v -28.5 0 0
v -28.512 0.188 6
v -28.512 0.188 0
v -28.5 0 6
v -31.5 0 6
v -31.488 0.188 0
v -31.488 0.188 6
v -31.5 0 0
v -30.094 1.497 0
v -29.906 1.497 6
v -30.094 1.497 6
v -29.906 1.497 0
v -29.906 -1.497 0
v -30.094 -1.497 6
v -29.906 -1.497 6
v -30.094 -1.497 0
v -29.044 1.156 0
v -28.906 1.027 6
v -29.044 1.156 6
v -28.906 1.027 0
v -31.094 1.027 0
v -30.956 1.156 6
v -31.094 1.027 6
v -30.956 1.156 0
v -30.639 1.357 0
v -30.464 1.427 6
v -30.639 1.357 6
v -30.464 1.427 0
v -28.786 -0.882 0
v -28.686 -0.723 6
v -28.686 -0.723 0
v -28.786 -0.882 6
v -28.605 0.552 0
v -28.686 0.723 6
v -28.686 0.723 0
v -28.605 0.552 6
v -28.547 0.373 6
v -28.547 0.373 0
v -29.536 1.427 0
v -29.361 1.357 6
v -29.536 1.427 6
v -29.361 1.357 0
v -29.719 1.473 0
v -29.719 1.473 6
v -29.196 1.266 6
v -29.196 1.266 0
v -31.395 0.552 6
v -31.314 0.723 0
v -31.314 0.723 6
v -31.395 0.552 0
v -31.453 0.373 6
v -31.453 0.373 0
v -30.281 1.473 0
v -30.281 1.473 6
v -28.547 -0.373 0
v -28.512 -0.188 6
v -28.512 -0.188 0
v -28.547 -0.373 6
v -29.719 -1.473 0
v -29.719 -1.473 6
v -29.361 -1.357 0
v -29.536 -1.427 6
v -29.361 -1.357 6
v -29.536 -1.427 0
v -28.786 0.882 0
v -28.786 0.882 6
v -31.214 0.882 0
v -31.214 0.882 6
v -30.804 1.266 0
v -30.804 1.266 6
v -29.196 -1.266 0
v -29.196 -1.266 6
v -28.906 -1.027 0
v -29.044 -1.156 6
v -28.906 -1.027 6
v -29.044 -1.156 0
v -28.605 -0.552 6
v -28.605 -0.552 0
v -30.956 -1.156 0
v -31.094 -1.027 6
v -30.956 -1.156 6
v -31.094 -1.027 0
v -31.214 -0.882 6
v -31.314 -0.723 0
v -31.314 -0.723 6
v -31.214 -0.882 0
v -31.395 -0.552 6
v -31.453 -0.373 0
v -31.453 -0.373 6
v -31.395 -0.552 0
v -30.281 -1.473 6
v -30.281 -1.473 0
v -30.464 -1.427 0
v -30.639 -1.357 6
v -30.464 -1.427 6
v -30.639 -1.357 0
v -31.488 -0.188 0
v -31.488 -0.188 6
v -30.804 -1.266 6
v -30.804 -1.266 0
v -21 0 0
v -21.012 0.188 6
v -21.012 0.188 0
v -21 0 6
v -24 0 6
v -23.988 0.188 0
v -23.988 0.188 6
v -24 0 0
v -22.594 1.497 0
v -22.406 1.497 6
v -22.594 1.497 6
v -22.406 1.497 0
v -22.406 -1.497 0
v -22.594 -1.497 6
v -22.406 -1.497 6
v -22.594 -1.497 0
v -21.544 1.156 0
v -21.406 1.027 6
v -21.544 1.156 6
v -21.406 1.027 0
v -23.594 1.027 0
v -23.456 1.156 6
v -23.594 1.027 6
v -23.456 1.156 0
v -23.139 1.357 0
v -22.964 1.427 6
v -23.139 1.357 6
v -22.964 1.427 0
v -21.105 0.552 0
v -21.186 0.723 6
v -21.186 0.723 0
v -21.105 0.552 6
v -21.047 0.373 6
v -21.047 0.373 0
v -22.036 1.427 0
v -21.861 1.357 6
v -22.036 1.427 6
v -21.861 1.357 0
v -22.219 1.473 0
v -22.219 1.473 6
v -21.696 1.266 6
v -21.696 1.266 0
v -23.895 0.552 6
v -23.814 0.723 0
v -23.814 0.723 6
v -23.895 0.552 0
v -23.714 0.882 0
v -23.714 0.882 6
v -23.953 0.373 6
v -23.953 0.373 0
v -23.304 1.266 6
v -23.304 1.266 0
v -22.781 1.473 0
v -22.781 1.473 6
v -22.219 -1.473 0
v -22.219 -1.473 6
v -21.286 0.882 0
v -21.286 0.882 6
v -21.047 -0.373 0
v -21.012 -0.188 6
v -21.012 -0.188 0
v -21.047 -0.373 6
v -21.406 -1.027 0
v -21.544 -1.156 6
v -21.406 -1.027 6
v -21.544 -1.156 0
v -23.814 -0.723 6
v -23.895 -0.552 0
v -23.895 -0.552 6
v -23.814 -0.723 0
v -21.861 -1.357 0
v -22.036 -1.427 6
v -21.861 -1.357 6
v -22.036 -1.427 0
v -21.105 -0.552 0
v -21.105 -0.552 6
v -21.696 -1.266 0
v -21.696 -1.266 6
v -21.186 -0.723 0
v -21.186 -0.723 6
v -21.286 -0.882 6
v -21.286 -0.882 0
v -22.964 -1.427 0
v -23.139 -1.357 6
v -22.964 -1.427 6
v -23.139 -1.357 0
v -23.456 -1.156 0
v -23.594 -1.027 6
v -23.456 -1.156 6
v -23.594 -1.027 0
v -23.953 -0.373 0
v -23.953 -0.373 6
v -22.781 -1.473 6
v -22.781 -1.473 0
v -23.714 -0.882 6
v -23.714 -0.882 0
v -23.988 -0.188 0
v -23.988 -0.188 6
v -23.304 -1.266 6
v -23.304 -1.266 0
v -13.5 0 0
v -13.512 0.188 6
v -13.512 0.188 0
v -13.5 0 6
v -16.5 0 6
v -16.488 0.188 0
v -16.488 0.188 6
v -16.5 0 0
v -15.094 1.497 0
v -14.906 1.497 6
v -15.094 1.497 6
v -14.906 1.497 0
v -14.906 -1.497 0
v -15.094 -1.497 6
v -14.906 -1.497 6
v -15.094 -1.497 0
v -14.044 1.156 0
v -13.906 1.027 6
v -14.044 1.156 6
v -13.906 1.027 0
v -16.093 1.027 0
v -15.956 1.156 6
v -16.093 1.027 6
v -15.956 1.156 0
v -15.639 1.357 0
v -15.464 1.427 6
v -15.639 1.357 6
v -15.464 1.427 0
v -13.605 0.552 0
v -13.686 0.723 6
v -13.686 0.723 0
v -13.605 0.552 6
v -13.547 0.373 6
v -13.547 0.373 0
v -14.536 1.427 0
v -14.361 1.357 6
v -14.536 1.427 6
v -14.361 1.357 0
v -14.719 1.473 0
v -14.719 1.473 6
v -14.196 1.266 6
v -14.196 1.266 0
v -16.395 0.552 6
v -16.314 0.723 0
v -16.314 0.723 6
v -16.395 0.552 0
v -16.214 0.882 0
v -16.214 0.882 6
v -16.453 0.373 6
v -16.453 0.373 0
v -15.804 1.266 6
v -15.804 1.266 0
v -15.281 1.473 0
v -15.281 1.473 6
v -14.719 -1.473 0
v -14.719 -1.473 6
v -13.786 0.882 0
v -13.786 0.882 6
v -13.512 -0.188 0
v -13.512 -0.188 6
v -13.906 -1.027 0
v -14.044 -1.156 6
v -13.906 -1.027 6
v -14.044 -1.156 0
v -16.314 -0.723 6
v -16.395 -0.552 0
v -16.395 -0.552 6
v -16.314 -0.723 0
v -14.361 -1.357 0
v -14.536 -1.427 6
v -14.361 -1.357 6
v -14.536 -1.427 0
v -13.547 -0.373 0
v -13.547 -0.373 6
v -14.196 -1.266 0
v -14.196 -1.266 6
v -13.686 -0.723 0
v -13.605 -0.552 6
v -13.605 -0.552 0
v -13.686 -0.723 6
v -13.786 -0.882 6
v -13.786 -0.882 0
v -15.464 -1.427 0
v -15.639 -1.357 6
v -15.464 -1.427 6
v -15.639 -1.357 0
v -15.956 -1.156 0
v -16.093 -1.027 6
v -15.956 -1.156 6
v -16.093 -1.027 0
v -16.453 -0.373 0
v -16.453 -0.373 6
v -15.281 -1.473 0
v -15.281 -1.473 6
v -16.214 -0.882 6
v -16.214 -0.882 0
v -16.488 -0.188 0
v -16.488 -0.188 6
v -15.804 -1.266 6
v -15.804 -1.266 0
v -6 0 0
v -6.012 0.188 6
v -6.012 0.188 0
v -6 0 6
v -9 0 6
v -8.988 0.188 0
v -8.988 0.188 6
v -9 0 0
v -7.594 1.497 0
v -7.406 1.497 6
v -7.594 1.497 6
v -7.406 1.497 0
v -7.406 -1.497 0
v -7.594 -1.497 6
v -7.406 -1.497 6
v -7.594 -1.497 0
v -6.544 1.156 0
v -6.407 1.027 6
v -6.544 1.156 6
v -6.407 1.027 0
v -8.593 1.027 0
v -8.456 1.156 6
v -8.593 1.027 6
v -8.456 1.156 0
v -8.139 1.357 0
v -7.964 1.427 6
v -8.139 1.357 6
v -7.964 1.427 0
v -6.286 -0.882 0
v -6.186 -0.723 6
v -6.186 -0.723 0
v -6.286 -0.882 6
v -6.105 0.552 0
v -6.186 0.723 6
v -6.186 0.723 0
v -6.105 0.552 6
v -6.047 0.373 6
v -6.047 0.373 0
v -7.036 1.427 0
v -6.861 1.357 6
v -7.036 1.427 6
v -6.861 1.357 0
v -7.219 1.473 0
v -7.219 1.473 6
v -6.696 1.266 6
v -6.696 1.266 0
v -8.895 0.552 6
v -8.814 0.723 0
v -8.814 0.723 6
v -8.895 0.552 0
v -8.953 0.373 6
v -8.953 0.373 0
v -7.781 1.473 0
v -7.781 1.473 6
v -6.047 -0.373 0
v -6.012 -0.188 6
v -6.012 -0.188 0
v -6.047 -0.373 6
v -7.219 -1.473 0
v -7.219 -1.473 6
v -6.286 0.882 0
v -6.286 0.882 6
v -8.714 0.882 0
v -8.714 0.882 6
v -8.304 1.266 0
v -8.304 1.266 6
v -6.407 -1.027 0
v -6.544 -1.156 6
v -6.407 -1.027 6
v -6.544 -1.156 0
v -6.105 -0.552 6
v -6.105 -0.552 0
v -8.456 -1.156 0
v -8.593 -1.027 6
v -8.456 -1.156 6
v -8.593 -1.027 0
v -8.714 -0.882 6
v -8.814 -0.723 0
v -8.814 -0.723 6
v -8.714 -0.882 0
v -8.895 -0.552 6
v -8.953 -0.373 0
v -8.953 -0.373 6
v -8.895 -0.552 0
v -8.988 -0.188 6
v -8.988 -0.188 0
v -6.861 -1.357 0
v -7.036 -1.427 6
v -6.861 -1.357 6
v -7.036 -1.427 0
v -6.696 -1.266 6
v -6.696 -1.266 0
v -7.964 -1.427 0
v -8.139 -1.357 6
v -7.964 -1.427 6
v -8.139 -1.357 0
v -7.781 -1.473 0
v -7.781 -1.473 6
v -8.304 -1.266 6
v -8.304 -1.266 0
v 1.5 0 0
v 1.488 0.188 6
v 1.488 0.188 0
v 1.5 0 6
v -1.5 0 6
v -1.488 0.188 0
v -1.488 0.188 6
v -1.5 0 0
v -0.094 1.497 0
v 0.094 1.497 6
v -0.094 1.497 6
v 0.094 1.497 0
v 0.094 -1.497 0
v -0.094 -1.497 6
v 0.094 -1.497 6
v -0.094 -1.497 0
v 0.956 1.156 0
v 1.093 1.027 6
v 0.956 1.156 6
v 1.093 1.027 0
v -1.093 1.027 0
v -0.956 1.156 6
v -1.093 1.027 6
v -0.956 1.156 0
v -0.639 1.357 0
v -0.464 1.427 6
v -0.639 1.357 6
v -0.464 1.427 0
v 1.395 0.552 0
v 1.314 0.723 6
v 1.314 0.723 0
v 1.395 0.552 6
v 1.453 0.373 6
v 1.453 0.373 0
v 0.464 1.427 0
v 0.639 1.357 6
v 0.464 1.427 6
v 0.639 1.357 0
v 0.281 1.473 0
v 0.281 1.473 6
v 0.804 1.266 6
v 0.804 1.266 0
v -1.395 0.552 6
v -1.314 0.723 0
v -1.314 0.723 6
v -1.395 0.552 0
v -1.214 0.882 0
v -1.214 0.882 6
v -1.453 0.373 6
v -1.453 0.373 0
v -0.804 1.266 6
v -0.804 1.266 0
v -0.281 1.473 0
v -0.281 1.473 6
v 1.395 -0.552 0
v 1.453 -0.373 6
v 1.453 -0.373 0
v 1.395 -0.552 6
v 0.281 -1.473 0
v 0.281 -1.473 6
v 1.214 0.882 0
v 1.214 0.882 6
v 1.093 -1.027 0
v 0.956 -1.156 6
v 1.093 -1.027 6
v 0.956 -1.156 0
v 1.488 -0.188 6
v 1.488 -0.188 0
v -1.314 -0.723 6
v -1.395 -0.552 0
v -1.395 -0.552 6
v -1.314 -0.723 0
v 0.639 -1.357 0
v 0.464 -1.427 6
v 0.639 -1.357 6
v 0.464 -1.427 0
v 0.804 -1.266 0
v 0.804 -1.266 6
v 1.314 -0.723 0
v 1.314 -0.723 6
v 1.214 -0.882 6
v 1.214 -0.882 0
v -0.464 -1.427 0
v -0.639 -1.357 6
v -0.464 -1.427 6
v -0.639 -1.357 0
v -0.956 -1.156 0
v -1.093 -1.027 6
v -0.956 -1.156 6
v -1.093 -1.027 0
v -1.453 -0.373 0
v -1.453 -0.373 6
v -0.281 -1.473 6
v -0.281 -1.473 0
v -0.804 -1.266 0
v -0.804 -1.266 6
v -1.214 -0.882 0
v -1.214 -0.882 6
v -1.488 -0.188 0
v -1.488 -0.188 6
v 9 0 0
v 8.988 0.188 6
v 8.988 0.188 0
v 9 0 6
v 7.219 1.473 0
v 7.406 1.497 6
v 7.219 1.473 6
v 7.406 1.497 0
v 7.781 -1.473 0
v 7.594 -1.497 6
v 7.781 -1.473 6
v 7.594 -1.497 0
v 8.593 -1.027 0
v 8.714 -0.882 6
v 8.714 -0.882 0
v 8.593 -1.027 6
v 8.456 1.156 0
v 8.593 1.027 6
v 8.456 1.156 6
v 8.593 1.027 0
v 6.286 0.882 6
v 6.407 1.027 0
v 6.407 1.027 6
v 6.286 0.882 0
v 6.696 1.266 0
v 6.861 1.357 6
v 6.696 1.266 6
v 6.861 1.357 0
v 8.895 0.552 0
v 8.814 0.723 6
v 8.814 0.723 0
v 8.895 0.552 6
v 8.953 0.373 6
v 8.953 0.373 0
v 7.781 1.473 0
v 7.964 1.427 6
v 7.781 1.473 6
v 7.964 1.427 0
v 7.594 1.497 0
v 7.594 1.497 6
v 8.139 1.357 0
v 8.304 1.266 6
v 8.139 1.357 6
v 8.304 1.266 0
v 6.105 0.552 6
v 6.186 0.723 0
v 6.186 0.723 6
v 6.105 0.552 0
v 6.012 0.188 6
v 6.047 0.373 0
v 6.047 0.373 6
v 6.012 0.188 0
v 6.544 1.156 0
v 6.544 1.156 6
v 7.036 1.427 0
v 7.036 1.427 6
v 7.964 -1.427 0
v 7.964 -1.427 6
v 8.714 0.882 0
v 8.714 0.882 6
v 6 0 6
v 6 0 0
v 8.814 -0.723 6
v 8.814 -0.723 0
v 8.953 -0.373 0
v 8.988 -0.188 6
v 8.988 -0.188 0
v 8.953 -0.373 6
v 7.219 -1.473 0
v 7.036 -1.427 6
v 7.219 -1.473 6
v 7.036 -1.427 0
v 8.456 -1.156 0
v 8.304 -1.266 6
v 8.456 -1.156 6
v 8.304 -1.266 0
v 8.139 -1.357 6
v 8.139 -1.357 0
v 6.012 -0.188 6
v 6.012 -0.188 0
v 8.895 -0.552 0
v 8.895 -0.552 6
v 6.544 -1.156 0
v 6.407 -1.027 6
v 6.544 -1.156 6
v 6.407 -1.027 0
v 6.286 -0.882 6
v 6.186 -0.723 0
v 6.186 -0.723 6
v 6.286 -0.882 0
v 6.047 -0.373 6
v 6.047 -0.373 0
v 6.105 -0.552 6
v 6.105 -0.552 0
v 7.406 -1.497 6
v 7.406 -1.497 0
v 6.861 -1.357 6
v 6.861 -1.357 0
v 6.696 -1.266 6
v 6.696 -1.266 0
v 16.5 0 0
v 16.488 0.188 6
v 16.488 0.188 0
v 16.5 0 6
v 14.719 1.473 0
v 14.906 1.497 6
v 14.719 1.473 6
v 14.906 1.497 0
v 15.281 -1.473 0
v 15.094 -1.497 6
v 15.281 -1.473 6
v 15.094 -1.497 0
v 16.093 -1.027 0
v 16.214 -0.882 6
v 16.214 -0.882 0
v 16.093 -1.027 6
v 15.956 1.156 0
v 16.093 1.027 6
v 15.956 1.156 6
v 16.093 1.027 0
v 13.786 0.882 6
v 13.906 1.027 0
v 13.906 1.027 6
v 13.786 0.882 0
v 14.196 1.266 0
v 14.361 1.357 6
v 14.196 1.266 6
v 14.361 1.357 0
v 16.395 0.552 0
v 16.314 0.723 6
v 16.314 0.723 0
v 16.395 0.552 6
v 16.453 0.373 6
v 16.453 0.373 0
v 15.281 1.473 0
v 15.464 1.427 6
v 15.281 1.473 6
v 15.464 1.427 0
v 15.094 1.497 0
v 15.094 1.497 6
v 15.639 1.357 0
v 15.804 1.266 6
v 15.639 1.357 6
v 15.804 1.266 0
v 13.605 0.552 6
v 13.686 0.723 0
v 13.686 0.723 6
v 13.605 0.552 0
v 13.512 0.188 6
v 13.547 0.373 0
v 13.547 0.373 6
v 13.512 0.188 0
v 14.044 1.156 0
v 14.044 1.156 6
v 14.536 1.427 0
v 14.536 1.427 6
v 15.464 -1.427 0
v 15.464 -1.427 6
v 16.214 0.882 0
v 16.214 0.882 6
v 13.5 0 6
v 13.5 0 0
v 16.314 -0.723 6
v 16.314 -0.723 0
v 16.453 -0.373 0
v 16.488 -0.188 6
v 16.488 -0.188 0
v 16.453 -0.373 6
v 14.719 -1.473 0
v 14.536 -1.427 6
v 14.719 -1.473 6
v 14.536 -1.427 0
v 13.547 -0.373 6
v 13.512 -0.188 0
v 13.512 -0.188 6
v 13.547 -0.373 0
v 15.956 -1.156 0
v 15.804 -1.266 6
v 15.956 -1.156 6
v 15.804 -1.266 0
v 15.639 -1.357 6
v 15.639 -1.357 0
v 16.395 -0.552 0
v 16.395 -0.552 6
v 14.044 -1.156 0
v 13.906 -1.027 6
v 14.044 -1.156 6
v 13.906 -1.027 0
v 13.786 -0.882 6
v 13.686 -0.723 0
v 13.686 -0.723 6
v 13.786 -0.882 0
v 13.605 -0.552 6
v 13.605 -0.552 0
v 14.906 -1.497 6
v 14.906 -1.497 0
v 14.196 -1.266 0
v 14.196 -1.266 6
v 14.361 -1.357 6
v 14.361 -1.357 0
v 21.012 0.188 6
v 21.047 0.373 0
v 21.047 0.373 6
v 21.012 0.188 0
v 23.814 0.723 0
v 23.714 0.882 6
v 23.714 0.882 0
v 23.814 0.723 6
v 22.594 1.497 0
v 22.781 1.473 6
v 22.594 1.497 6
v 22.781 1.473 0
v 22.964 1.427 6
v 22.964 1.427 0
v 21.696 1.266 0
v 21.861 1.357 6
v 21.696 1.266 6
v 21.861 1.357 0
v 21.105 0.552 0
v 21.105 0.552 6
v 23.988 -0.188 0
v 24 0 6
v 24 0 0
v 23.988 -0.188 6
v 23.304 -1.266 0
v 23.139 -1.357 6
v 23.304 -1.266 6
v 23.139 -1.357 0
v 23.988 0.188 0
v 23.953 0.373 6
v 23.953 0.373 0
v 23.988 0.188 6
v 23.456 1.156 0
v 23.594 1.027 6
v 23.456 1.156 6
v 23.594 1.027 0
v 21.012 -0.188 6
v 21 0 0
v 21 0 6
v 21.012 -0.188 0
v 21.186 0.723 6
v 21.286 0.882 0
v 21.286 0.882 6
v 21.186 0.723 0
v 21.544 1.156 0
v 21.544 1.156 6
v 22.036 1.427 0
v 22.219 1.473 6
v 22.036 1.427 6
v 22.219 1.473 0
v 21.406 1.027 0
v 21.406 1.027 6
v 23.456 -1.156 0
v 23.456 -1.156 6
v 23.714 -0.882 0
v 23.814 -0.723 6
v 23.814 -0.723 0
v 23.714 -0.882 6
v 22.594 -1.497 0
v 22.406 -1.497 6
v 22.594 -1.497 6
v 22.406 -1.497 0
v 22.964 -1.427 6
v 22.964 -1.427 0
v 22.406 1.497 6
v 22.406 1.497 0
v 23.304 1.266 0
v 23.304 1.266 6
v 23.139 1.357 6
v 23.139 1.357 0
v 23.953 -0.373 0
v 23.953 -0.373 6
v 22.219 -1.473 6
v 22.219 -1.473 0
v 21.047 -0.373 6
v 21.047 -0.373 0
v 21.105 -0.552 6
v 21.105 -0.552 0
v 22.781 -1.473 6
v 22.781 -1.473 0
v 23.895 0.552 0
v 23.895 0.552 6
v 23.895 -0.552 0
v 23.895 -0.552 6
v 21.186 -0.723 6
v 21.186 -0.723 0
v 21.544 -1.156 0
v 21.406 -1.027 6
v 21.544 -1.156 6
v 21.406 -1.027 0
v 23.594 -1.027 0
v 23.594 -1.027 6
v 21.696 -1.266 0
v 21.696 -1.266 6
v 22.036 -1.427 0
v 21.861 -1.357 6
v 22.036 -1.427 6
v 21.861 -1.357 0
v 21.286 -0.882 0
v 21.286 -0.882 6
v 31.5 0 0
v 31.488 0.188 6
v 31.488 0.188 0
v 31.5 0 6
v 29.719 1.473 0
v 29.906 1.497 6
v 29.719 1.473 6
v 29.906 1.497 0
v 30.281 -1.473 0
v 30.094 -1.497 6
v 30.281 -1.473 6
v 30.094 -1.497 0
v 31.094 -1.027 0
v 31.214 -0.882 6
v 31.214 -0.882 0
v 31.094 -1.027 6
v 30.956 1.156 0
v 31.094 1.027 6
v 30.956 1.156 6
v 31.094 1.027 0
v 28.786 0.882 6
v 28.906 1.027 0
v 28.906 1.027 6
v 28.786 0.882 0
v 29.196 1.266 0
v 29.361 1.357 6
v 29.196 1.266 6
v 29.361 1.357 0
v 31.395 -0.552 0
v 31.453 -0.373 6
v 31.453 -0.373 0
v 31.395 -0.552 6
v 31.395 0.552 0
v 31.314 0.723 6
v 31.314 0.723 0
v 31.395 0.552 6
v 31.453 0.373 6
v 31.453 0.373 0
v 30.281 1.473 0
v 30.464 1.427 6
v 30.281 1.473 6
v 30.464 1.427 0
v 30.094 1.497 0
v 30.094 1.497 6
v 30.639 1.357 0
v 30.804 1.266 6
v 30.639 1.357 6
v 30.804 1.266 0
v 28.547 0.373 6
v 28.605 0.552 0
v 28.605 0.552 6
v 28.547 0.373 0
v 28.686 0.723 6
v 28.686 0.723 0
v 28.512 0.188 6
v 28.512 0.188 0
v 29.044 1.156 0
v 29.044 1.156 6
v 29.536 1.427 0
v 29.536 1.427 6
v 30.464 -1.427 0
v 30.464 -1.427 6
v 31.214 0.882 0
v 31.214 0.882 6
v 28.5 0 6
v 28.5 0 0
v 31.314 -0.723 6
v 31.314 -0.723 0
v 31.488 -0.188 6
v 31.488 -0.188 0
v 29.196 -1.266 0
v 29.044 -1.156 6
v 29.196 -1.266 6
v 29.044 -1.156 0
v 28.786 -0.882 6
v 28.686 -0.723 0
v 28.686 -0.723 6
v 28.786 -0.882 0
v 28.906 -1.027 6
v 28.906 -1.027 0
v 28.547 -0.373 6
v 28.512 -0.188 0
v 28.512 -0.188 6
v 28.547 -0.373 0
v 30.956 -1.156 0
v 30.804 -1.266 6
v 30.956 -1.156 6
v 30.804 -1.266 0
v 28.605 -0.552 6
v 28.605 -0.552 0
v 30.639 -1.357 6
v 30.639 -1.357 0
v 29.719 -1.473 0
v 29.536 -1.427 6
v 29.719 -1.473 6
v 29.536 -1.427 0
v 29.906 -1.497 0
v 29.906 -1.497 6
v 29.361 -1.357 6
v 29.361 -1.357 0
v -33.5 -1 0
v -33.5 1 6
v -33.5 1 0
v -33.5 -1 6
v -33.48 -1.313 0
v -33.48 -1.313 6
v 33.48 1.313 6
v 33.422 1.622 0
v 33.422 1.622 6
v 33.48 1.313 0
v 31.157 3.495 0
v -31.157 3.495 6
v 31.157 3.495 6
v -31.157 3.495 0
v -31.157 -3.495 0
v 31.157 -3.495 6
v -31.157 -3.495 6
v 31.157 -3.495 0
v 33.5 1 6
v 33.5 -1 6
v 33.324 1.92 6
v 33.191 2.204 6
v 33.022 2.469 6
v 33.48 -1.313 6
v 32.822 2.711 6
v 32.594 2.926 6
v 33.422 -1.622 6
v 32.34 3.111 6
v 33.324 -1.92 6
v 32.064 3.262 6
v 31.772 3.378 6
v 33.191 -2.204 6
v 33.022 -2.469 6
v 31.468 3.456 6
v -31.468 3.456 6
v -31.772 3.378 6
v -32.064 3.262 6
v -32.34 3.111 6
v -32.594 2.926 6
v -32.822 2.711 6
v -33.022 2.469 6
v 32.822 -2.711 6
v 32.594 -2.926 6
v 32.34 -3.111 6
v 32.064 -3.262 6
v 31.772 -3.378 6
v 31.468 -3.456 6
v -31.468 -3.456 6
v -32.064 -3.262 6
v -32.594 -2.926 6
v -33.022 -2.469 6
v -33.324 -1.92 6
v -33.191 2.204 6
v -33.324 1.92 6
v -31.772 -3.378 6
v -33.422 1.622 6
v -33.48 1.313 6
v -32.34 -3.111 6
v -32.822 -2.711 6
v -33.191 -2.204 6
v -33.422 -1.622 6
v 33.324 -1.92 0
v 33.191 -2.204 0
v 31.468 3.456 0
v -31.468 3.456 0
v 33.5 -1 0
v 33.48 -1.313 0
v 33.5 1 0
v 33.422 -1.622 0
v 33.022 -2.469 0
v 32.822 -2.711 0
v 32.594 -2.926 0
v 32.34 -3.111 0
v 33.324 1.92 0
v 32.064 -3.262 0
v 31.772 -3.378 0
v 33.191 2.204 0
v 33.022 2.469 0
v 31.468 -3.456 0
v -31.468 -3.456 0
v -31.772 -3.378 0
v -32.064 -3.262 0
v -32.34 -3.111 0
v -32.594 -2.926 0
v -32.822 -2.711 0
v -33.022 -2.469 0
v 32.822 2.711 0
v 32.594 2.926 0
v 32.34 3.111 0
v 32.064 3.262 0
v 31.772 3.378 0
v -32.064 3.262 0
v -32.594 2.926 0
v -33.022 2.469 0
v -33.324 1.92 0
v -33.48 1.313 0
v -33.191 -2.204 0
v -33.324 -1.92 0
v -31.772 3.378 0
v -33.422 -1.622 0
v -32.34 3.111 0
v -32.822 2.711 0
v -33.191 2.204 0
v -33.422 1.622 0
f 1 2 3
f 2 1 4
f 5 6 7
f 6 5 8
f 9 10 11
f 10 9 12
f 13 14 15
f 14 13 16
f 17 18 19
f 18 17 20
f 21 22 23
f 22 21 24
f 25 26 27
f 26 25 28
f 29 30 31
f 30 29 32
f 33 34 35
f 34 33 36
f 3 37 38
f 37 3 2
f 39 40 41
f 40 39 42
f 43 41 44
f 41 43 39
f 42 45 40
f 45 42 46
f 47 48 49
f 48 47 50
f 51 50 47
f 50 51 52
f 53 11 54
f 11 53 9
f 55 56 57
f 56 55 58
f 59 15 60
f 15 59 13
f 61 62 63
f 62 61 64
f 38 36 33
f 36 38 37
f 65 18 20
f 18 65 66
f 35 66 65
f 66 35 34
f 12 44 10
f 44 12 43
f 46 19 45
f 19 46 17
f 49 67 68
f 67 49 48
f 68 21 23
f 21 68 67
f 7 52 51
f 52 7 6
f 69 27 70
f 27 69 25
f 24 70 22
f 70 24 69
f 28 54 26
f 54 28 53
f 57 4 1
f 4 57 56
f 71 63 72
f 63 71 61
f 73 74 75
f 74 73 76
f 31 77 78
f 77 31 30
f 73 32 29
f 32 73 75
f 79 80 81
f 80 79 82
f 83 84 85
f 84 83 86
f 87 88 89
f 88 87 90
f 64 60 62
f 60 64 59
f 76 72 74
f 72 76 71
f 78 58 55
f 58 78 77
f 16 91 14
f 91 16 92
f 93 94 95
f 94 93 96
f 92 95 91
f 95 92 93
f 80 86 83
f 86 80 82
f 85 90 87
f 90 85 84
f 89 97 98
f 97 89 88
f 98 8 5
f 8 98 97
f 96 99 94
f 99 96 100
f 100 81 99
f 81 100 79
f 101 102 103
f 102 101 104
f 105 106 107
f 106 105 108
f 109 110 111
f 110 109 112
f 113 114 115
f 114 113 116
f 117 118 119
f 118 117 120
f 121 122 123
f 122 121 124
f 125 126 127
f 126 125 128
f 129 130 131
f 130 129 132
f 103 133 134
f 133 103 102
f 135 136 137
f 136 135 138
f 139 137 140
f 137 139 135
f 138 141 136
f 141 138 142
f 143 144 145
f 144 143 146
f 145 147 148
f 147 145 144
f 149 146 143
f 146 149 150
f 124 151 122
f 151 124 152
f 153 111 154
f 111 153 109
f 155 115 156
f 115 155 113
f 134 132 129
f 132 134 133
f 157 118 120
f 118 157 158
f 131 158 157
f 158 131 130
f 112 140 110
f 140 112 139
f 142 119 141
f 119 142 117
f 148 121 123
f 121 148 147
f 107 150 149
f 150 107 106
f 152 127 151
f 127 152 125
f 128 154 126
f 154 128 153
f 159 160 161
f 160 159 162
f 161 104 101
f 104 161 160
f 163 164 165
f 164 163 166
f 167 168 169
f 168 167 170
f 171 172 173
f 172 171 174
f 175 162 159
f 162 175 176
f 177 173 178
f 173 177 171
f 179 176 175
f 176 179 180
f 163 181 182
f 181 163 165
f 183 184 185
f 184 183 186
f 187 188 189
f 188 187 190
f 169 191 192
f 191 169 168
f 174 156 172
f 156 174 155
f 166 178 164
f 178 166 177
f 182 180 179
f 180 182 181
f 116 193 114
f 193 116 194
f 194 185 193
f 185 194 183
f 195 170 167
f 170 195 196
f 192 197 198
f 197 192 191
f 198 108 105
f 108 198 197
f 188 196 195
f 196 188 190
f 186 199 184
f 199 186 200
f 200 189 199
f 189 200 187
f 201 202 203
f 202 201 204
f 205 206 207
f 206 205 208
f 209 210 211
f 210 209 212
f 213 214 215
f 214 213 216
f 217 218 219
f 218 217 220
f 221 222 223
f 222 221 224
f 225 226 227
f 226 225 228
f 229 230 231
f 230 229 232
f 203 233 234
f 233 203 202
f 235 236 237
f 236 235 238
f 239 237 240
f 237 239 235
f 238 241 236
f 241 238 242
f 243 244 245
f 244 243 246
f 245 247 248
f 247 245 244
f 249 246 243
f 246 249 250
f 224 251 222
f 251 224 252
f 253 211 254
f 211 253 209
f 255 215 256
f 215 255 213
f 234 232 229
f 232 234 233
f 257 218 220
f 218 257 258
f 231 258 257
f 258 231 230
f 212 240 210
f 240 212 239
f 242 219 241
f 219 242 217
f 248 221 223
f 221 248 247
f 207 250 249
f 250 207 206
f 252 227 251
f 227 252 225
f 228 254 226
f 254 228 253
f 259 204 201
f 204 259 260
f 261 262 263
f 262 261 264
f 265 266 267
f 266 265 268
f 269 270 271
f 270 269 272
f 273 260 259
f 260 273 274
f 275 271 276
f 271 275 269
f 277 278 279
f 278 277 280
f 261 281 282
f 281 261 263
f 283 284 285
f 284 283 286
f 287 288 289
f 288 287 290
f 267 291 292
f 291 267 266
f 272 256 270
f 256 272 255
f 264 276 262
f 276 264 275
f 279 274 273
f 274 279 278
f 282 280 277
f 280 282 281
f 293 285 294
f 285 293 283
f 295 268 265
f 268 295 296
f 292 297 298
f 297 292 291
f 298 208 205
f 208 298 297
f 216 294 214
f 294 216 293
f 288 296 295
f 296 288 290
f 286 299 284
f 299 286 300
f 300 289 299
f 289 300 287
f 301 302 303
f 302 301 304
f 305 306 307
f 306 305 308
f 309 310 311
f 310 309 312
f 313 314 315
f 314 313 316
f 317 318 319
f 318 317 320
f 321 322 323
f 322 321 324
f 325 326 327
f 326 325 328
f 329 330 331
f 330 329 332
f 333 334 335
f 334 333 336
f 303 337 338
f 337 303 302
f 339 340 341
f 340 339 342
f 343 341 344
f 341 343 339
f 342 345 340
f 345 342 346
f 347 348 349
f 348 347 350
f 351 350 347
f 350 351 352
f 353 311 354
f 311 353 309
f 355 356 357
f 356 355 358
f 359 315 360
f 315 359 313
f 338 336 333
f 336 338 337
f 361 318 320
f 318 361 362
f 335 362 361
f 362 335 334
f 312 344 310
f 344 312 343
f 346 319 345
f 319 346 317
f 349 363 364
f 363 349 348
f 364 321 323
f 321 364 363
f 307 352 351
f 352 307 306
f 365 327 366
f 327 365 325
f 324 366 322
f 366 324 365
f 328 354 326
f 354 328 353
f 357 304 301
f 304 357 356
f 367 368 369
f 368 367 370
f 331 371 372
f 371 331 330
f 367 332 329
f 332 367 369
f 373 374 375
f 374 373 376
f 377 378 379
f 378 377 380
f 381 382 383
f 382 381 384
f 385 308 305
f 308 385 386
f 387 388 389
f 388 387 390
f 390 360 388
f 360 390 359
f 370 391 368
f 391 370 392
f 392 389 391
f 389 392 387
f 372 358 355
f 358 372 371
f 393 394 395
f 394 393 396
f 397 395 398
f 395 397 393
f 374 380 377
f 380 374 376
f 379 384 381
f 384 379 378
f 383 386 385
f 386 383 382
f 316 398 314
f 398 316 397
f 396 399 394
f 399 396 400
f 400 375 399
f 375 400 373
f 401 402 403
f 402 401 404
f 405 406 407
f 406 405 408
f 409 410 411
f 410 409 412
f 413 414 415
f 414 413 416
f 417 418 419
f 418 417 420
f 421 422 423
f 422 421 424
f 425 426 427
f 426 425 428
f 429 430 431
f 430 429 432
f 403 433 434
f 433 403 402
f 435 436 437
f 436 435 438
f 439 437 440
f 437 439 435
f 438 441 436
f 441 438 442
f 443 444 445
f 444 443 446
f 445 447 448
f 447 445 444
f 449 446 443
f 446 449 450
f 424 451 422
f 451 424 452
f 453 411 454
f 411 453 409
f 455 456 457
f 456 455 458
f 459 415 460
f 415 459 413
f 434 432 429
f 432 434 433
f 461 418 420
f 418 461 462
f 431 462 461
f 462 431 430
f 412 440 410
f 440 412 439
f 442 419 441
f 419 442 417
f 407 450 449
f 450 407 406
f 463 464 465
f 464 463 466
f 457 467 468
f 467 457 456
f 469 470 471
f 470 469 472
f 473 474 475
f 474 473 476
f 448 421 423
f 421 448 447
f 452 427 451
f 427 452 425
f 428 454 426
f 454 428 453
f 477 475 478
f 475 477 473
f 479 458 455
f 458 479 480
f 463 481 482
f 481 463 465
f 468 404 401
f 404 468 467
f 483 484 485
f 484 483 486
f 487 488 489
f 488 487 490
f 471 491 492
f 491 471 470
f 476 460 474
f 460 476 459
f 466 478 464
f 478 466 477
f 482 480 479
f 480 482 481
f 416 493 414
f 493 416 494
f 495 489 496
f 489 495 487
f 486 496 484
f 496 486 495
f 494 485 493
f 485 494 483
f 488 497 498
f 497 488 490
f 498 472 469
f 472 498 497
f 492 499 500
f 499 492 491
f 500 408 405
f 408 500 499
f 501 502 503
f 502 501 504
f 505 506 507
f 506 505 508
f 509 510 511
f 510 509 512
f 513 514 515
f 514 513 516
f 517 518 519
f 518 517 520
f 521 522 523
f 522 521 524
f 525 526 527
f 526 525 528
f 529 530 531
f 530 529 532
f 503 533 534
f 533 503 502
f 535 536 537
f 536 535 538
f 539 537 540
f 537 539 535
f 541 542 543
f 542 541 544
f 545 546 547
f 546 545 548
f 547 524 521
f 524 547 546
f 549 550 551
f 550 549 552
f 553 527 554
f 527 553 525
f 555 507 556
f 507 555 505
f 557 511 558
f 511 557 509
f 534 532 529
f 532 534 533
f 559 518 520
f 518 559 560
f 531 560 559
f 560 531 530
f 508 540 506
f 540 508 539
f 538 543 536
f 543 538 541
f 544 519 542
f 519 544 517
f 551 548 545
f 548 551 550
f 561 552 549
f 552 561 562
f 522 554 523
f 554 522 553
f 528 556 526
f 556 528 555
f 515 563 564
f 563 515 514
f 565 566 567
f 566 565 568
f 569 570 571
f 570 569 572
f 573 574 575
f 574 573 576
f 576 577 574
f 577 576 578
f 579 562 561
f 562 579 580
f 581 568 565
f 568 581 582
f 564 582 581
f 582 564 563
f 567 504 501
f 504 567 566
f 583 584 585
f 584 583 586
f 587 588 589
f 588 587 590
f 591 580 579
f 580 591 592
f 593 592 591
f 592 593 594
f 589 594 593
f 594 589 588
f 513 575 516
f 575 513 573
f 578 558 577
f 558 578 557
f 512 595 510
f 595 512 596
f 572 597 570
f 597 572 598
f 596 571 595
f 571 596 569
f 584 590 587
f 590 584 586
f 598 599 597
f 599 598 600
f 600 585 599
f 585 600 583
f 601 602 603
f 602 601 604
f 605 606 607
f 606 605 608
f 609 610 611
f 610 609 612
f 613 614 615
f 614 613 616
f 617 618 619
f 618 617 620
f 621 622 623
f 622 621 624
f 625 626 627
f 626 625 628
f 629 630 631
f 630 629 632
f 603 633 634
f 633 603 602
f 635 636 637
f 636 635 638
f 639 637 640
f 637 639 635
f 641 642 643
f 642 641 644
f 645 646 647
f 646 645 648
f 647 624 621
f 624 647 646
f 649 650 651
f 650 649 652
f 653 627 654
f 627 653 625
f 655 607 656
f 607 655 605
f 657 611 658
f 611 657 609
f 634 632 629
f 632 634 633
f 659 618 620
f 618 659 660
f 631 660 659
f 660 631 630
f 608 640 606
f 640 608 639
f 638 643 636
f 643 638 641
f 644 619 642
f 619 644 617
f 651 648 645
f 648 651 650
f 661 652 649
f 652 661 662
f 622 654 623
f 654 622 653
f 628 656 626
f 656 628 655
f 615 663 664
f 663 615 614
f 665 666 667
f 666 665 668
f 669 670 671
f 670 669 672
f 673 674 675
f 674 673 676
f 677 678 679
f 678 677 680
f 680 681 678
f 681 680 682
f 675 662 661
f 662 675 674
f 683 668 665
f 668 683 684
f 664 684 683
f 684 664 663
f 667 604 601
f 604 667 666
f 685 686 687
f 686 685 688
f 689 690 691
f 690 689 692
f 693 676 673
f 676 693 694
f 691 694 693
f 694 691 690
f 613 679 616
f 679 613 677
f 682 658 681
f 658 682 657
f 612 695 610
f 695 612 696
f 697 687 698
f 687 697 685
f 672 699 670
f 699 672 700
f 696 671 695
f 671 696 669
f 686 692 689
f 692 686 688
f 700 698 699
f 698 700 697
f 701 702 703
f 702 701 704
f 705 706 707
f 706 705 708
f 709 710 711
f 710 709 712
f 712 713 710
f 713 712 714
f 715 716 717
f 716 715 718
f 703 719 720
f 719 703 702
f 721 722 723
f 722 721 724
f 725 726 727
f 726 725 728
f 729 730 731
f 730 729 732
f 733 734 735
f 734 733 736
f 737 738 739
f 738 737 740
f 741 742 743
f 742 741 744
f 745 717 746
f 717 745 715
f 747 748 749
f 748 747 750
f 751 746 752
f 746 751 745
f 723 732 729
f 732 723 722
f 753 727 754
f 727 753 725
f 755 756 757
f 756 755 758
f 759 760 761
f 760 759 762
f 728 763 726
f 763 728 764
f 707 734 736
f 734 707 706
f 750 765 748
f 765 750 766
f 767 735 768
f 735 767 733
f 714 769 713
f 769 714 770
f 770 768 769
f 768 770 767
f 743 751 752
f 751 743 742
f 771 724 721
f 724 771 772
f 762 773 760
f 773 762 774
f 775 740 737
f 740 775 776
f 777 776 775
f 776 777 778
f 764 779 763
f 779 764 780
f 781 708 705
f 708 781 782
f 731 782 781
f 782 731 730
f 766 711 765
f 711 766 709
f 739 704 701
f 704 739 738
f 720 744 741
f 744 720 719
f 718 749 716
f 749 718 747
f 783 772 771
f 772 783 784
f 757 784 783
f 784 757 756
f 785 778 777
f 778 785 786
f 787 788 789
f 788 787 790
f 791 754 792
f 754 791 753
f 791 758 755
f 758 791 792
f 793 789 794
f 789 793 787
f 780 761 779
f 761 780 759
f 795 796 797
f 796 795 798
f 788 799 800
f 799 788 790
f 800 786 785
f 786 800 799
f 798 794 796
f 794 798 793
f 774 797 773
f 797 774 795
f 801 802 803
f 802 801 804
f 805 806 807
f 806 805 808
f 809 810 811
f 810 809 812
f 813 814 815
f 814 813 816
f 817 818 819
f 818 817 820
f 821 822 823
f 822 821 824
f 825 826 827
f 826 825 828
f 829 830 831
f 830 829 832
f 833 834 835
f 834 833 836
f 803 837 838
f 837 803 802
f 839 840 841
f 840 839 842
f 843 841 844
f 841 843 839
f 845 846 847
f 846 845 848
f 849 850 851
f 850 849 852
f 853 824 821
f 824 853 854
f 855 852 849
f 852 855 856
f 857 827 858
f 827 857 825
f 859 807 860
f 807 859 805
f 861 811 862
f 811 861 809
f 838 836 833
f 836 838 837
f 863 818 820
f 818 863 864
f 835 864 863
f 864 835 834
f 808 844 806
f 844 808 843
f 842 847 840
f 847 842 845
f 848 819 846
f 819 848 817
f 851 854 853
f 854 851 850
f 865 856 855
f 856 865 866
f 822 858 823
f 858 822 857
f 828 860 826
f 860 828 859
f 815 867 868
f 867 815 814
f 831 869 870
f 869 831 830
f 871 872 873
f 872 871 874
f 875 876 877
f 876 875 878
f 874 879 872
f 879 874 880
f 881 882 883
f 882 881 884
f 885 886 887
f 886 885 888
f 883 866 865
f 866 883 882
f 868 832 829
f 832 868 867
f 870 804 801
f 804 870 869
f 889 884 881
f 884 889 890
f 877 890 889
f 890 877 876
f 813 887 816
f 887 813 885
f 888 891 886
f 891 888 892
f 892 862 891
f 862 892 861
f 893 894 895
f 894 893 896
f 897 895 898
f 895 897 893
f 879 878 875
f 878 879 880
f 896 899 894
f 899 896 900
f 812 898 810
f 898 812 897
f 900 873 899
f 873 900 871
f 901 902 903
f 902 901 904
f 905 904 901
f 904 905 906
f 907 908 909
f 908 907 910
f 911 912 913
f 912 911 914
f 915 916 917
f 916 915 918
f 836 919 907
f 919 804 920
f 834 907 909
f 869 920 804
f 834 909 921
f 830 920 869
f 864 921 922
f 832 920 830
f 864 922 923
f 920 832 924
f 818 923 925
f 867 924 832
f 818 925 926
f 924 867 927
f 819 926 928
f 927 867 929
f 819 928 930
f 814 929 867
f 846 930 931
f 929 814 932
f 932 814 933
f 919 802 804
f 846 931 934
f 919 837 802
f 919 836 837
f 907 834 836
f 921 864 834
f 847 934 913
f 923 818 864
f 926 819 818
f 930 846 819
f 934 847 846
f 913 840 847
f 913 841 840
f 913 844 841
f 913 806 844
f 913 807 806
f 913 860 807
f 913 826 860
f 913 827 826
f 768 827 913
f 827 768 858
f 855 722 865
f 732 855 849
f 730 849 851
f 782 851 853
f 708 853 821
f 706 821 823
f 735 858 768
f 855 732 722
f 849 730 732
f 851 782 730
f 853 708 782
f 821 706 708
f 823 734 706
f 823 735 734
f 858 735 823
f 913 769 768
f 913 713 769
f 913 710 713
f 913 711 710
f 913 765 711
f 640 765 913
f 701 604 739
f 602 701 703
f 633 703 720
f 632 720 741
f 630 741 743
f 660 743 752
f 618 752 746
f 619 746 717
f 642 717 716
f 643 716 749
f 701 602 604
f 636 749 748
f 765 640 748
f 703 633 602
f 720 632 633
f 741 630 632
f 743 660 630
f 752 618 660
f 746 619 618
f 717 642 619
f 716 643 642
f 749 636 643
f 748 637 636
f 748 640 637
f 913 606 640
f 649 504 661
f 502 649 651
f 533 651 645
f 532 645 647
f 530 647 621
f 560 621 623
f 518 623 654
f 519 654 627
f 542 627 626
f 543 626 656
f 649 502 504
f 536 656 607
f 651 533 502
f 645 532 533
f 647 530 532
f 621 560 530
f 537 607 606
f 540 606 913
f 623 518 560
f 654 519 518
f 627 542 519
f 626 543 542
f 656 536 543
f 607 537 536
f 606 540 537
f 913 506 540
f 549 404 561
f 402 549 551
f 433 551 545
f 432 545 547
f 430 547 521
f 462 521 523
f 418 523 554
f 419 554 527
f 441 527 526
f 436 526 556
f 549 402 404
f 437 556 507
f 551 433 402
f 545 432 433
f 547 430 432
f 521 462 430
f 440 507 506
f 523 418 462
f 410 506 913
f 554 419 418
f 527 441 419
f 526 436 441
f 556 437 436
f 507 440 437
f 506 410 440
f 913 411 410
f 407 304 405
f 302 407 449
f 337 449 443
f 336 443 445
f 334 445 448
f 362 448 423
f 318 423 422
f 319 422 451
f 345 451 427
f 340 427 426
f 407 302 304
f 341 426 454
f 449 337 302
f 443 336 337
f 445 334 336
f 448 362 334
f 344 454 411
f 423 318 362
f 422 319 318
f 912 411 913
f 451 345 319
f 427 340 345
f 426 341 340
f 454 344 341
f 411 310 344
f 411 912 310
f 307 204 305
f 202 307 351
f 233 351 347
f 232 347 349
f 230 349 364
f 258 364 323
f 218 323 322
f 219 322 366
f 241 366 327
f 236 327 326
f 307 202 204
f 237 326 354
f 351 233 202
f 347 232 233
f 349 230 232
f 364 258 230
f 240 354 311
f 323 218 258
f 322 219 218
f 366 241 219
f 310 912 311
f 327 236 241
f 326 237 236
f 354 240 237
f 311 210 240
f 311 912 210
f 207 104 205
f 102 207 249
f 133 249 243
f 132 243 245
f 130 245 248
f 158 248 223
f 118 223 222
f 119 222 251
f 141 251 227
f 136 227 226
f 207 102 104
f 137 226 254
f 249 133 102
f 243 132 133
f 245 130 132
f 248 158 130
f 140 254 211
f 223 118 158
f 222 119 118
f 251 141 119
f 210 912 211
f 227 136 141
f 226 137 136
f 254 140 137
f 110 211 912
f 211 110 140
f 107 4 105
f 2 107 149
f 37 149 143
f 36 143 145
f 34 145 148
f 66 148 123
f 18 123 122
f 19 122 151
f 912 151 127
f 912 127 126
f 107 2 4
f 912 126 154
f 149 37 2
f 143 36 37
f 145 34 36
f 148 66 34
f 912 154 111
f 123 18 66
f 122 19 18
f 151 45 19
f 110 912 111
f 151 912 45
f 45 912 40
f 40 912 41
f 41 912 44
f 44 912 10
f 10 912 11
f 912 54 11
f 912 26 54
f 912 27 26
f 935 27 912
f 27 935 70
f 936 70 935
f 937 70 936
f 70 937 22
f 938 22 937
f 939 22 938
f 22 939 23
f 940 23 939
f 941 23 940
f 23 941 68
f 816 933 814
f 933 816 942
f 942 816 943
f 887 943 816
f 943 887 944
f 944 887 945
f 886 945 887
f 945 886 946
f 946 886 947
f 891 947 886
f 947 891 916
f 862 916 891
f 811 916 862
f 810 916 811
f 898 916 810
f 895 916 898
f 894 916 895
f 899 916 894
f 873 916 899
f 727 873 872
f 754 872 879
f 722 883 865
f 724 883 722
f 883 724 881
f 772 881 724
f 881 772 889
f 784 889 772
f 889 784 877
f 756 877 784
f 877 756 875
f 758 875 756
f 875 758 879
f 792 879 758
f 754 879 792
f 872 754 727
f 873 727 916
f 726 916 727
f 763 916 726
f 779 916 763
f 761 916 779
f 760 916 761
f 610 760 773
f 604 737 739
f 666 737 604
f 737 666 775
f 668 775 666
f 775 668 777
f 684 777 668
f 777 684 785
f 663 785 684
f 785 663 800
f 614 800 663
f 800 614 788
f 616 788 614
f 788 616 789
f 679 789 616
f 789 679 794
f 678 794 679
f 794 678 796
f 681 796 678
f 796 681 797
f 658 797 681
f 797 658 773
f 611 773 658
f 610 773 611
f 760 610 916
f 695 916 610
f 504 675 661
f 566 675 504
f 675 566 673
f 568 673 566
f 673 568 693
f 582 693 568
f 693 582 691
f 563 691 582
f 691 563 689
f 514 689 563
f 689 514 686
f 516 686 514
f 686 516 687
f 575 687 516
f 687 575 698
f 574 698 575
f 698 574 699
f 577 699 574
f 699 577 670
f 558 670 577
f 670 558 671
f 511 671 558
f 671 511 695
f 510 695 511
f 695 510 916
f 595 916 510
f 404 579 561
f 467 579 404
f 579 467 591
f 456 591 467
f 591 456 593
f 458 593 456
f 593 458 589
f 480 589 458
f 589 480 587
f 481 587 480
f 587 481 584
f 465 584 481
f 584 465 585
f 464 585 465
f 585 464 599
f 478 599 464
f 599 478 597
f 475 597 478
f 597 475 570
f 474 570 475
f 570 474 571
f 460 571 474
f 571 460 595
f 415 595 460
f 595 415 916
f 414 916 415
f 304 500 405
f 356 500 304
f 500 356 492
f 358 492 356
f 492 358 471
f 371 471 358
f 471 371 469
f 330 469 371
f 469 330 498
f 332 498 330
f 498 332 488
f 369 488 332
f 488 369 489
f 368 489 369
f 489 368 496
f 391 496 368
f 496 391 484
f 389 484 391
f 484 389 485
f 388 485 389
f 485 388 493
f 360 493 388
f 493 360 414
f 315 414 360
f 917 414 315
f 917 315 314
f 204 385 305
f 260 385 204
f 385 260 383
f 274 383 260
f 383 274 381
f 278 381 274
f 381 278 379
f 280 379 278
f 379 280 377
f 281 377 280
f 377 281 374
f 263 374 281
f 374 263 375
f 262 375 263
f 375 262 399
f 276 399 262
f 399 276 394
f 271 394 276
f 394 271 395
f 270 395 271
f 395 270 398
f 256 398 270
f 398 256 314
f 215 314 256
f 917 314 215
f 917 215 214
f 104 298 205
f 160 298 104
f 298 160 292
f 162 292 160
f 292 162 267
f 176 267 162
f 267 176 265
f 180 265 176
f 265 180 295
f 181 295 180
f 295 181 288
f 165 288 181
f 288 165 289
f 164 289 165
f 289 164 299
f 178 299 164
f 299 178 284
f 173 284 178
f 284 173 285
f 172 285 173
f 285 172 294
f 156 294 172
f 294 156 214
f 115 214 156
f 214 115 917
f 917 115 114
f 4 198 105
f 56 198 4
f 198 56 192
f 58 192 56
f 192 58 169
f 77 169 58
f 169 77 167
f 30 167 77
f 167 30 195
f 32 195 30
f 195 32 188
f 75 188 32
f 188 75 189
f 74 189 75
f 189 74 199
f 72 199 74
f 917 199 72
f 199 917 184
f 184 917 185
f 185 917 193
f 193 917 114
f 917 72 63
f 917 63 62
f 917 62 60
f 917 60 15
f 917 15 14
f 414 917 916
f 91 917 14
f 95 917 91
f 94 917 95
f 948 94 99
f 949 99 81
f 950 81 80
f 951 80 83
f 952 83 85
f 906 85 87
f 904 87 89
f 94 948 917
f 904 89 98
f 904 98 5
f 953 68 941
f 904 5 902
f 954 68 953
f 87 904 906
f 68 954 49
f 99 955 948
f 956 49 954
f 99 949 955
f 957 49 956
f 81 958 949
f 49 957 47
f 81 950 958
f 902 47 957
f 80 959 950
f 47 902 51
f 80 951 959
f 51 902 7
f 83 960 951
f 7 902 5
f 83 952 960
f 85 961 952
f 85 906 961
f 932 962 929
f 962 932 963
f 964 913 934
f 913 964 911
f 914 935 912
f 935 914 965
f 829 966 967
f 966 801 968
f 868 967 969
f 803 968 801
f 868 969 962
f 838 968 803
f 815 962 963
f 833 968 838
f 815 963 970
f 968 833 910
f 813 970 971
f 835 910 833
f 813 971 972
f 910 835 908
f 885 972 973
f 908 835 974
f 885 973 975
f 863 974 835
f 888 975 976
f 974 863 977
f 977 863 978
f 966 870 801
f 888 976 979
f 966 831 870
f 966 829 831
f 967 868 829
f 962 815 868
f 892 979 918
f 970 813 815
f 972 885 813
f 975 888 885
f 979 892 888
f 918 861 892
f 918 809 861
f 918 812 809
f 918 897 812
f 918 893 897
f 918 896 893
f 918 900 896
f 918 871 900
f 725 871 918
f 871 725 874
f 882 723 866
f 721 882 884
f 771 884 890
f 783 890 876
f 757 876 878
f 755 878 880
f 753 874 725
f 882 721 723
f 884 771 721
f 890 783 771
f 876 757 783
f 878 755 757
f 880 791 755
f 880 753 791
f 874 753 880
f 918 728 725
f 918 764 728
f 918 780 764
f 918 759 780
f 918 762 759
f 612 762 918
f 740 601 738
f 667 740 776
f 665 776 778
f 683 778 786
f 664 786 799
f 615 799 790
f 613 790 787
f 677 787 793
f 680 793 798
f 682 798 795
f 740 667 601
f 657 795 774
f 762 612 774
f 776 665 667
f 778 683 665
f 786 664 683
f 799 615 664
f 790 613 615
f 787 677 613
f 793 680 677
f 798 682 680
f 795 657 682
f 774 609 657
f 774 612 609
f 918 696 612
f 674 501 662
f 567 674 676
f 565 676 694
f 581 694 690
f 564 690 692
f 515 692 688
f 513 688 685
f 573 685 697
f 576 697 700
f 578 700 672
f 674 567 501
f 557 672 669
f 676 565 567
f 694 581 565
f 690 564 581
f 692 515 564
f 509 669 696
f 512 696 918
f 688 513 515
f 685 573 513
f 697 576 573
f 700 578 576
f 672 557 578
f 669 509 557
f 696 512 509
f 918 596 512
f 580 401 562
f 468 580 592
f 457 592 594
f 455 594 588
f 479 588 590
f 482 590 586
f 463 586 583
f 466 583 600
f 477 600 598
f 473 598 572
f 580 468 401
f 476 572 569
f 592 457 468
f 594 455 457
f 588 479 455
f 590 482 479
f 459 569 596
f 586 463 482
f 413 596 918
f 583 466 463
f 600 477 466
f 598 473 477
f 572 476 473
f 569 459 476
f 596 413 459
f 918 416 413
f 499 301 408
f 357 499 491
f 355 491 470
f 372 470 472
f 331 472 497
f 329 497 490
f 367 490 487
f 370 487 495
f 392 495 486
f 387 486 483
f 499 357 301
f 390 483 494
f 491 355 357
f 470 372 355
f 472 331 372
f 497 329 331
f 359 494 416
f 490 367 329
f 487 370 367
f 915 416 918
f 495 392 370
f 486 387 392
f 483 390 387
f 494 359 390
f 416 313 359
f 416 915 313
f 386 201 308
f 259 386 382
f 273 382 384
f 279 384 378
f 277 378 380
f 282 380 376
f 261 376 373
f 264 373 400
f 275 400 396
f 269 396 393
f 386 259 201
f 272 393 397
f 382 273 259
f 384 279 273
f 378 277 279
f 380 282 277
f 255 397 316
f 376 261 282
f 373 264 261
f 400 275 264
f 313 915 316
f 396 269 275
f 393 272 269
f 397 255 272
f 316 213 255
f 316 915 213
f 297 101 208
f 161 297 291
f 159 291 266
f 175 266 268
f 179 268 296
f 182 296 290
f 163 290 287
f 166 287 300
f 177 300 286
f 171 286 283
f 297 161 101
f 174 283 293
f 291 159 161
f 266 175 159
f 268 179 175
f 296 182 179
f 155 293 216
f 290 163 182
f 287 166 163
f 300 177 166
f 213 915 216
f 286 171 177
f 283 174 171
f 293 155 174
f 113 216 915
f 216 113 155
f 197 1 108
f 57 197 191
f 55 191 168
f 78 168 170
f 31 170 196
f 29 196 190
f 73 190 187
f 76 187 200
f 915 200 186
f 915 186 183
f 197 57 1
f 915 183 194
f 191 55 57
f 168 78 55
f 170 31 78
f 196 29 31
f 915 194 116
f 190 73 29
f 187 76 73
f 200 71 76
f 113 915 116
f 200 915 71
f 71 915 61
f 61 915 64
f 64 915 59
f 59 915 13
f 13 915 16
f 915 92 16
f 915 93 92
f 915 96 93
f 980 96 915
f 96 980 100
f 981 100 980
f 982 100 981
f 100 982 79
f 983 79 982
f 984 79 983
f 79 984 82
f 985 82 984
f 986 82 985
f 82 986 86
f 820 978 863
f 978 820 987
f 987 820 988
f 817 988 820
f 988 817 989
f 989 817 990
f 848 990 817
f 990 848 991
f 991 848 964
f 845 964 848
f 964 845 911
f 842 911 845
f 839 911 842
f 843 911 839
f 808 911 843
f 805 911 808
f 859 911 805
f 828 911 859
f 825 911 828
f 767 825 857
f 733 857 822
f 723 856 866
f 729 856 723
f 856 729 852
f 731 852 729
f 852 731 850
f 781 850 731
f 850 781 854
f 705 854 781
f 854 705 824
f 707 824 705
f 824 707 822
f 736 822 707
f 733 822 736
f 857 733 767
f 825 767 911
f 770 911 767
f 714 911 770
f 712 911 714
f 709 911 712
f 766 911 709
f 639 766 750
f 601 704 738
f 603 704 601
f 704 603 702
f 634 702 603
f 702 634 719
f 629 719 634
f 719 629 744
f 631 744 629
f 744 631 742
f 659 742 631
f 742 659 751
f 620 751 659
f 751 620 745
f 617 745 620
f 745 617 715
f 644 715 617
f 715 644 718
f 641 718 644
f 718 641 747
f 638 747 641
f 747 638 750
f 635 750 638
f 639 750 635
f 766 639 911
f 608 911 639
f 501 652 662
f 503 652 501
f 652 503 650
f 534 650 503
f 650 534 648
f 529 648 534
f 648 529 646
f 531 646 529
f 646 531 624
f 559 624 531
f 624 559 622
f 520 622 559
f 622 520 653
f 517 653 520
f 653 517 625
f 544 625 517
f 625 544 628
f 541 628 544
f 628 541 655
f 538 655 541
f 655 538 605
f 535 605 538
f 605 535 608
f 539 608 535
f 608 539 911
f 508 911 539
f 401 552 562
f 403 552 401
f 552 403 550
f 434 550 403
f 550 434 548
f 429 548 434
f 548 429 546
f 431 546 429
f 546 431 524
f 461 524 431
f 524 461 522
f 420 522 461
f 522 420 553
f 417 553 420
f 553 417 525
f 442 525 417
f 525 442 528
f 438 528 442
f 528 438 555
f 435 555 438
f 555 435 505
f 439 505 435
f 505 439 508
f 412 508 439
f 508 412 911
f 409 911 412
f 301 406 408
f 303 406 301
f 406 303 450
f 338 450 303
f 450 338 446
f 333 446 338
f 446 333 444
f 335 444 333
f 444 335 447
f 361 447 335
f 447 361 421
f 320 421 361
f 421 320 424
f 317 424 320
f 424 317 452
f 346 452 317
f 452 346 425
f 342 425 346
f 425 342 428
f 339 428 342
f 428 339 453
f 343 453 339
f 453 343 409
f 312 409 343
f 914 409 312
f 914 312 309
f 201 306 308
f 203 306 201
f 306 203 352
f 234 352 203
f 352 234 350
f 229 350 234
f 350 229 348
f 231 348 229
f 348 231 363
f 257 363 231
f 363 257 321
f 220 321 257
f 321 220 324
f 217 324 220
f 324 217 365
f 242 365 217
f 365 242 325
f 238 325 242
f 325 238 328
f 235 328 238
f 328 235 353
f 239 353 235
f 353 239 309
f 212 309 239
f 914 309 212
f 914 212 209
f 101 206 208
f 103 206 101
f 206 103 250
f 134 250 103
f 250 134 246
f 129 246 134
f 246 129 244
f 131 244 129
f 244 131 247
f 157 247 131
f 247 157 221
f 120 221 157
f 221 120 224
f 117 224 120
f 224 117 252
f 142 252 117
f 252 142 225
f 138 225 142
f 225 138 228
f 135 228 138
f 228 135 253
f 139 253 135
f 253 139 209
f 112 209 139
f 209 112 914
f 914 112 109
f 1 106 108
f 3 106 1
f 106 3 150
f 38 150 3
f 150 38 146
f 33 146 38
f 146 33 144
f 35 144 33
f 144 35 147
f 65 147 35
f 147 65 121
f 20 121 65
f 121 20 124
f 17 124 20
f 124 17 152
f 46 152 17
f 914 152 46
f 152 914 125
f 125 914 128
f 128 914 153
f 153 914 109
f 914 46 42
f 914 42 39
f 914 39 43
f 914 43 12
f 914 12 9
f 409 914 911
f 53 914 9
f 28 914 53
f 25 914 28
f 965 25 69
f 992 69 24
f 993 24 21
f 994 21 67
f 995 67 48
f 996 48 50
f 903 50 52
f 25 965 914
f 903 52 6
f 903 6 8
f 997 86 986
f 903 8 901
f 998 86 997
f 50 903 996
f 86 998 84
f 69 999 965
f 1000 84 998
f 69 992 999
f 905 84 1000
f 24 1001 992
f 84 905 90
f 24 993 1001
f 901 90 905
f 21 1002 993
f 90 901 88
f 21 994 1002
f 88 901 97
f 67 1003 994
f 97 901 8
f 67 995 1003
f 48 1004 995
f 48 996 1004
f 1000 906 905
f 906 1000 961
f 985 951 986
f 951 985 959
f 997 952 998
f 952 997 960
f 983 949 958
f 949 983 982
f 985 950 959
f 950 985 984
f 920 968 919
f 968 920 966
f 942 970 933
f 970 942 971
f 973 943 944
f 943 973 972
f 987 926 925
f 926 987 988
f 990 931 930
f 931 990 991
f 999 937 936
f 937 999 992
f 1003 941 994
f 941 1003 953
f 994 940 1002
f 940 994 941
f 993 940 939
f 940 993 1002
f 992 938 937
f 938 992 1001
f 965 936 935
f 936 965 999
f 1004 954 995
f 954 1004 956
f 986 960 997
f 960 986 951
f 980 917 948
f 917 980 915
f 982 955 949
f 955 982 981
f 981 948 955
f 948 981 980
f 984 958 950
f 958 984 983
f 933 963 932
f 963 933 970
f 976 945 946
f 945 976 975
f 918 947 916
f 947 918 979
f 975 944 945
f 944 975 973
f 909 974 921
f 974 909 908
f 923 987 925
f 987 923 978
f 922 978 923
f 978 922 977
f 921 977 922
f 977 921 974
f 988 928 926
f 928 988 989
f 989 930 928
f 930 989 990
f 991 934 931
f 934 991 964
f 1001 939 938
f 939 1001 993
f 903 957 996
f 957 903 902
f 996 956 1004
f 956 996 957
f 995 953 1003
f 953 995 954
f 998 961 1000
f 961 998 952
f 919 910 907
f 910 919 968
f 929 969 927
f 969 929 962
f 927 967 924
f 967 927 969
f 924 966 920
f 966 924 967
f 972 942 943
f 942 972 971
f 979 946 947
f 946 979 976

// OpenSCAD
$fn = 50;


difference() {
	union() {
		translate(v = [0, 0, 0]) {
			rotate(a = [0, 0, 0]) {
				hull() {
					translate(v = [-31.0000000000, 1.0000000000, 0]) {
						rotate(a = [0, 0, 0]) {
							translate(v = [0, 0, 0]) {
								rotate(a = [0, 0, 0]) {
									cylinder(h = 6, r = 2.5000000000);
								}
							}
						}
					}
					translate(v = [31.0000000000, 1.0000000000, 0]) {
						rotate(a = [0, 0, 0]) {
							translate(v = [0, 0, 0]) {
								rotate(a = [0, 0, 0]) {
									cylinder(h = 6, r = 2.5000000000);
								}
							}
						}
					}
					translate(v = [-31.0000000000, -1.0000000000, 0]) {
						rotate(a = [0, 0, 0]) {
							translate(v = [0, 0, 0]) {
								rotate(a = [0, 0, 0]) {
									cylinder(h = 6, r = 2.5000000000);
								}
							}
						}
					}
					translate(v = [31.0000000000, -1.0000000000, 0]) {
						rotate(a = [0, 0, 0]) {
							translate(v = [0, 0, 0]) {
								rotate(a = [0, 0, 0]) {
									cylinder(h = 6, r = 2.5000000000);
								}
							}
						}
					}
				}
			}
		}
	}
	union() {
		translate(v = [-30.0000000000, 0.0000000000, 0]) {
			rotate(a = [0, 0, 0]) {
				translate(v = [0, 0, -50]) {
					rotate(a = [0, 0, 0]) {
						cylinder(h = 100, r = 1.5000000000);
					}
				}
			}
		}
		translate(v = [-22.5000000000, 0.0000000000, 0]) {
			rotate(a = [0, 0, 0]) {
				translate(v = [0, 0, -50]) {
					rotate(a = [0, 0, 0]) {
						cylinder(h = 100, r = 1.5000000000);
					}
				}
			}
		}
		translate(v = [-15.0000000000, 0.0000000000, 0]) {
			rotate(a = [0, 0, 0]) {
				translate(v = [0, 0, -50]) {
					rotate(a = [0, 0, 0]) {
						cylinder(h = 100, r = 1.5000000000);
					}
				}
			}
		}
		translate(v = [-7.5000000000, 0.0000000000, 0]) {
			rotate(a = [0, 0, 0]) {
				translate(v = [0, 0, -50]) {
					rotate(a = [0, 0, 0]) {
						cylinder(h = 100, r = 1.5000000000);
					}
				}
			}
		}
		translate(v = [0.0000000000, 0.0000000000, 0]) {
			rotate(a = [0, 0, 0]) {
				translate(v = [0, 0, -50]) {
					rotate(a = [0, 0, 0]) {
						cylinder(h = 100, r = 1.5000000000);
					}
				}
			}
		}
		translate(v = [7.5000000000, 0.0000000000, 0]) {
			rotate(a = [0, 0, 0]) {
				translate(v = [0, 0, -50]) {
					rotate(a = [0, 0, 0]) {
						cylinder(h = 100, r = 1.5000000000);
					}
				}
			}
		}
		translate(v = [15.0000000000, 0.0000000000, 0]) {
			rotate(a = [0, 0, 0]) {
				translate(v = [0, 0, -50]) {
					rotate(a = [0, 0, 0]) {
						cylinder(h = 100, r = 1.5000000000);
					}
				}
			}
		}
		translate(v = [22.5000000000, 0.0000000000, 0]) {
			rotate(a = [0, 0, 0]) {
				translate(v = [0, 0, -50]) {
					rotate(a = [0, 0, 0]) {
						cylinder(h = 100, r = 1.5000000000);
					}
				}
			}
		}
		translate(v = [30.0000000000, 0.0000000000, 0]) {
			rotate(a = [0, 0, 0]) {
				translate(v = [0, 0, -50]) {
					rotate(a = [0, 0, 0]) {
						cylinder(h = 100, r = 1.5000000000);
					}
				}
			}
		}
	}
}
